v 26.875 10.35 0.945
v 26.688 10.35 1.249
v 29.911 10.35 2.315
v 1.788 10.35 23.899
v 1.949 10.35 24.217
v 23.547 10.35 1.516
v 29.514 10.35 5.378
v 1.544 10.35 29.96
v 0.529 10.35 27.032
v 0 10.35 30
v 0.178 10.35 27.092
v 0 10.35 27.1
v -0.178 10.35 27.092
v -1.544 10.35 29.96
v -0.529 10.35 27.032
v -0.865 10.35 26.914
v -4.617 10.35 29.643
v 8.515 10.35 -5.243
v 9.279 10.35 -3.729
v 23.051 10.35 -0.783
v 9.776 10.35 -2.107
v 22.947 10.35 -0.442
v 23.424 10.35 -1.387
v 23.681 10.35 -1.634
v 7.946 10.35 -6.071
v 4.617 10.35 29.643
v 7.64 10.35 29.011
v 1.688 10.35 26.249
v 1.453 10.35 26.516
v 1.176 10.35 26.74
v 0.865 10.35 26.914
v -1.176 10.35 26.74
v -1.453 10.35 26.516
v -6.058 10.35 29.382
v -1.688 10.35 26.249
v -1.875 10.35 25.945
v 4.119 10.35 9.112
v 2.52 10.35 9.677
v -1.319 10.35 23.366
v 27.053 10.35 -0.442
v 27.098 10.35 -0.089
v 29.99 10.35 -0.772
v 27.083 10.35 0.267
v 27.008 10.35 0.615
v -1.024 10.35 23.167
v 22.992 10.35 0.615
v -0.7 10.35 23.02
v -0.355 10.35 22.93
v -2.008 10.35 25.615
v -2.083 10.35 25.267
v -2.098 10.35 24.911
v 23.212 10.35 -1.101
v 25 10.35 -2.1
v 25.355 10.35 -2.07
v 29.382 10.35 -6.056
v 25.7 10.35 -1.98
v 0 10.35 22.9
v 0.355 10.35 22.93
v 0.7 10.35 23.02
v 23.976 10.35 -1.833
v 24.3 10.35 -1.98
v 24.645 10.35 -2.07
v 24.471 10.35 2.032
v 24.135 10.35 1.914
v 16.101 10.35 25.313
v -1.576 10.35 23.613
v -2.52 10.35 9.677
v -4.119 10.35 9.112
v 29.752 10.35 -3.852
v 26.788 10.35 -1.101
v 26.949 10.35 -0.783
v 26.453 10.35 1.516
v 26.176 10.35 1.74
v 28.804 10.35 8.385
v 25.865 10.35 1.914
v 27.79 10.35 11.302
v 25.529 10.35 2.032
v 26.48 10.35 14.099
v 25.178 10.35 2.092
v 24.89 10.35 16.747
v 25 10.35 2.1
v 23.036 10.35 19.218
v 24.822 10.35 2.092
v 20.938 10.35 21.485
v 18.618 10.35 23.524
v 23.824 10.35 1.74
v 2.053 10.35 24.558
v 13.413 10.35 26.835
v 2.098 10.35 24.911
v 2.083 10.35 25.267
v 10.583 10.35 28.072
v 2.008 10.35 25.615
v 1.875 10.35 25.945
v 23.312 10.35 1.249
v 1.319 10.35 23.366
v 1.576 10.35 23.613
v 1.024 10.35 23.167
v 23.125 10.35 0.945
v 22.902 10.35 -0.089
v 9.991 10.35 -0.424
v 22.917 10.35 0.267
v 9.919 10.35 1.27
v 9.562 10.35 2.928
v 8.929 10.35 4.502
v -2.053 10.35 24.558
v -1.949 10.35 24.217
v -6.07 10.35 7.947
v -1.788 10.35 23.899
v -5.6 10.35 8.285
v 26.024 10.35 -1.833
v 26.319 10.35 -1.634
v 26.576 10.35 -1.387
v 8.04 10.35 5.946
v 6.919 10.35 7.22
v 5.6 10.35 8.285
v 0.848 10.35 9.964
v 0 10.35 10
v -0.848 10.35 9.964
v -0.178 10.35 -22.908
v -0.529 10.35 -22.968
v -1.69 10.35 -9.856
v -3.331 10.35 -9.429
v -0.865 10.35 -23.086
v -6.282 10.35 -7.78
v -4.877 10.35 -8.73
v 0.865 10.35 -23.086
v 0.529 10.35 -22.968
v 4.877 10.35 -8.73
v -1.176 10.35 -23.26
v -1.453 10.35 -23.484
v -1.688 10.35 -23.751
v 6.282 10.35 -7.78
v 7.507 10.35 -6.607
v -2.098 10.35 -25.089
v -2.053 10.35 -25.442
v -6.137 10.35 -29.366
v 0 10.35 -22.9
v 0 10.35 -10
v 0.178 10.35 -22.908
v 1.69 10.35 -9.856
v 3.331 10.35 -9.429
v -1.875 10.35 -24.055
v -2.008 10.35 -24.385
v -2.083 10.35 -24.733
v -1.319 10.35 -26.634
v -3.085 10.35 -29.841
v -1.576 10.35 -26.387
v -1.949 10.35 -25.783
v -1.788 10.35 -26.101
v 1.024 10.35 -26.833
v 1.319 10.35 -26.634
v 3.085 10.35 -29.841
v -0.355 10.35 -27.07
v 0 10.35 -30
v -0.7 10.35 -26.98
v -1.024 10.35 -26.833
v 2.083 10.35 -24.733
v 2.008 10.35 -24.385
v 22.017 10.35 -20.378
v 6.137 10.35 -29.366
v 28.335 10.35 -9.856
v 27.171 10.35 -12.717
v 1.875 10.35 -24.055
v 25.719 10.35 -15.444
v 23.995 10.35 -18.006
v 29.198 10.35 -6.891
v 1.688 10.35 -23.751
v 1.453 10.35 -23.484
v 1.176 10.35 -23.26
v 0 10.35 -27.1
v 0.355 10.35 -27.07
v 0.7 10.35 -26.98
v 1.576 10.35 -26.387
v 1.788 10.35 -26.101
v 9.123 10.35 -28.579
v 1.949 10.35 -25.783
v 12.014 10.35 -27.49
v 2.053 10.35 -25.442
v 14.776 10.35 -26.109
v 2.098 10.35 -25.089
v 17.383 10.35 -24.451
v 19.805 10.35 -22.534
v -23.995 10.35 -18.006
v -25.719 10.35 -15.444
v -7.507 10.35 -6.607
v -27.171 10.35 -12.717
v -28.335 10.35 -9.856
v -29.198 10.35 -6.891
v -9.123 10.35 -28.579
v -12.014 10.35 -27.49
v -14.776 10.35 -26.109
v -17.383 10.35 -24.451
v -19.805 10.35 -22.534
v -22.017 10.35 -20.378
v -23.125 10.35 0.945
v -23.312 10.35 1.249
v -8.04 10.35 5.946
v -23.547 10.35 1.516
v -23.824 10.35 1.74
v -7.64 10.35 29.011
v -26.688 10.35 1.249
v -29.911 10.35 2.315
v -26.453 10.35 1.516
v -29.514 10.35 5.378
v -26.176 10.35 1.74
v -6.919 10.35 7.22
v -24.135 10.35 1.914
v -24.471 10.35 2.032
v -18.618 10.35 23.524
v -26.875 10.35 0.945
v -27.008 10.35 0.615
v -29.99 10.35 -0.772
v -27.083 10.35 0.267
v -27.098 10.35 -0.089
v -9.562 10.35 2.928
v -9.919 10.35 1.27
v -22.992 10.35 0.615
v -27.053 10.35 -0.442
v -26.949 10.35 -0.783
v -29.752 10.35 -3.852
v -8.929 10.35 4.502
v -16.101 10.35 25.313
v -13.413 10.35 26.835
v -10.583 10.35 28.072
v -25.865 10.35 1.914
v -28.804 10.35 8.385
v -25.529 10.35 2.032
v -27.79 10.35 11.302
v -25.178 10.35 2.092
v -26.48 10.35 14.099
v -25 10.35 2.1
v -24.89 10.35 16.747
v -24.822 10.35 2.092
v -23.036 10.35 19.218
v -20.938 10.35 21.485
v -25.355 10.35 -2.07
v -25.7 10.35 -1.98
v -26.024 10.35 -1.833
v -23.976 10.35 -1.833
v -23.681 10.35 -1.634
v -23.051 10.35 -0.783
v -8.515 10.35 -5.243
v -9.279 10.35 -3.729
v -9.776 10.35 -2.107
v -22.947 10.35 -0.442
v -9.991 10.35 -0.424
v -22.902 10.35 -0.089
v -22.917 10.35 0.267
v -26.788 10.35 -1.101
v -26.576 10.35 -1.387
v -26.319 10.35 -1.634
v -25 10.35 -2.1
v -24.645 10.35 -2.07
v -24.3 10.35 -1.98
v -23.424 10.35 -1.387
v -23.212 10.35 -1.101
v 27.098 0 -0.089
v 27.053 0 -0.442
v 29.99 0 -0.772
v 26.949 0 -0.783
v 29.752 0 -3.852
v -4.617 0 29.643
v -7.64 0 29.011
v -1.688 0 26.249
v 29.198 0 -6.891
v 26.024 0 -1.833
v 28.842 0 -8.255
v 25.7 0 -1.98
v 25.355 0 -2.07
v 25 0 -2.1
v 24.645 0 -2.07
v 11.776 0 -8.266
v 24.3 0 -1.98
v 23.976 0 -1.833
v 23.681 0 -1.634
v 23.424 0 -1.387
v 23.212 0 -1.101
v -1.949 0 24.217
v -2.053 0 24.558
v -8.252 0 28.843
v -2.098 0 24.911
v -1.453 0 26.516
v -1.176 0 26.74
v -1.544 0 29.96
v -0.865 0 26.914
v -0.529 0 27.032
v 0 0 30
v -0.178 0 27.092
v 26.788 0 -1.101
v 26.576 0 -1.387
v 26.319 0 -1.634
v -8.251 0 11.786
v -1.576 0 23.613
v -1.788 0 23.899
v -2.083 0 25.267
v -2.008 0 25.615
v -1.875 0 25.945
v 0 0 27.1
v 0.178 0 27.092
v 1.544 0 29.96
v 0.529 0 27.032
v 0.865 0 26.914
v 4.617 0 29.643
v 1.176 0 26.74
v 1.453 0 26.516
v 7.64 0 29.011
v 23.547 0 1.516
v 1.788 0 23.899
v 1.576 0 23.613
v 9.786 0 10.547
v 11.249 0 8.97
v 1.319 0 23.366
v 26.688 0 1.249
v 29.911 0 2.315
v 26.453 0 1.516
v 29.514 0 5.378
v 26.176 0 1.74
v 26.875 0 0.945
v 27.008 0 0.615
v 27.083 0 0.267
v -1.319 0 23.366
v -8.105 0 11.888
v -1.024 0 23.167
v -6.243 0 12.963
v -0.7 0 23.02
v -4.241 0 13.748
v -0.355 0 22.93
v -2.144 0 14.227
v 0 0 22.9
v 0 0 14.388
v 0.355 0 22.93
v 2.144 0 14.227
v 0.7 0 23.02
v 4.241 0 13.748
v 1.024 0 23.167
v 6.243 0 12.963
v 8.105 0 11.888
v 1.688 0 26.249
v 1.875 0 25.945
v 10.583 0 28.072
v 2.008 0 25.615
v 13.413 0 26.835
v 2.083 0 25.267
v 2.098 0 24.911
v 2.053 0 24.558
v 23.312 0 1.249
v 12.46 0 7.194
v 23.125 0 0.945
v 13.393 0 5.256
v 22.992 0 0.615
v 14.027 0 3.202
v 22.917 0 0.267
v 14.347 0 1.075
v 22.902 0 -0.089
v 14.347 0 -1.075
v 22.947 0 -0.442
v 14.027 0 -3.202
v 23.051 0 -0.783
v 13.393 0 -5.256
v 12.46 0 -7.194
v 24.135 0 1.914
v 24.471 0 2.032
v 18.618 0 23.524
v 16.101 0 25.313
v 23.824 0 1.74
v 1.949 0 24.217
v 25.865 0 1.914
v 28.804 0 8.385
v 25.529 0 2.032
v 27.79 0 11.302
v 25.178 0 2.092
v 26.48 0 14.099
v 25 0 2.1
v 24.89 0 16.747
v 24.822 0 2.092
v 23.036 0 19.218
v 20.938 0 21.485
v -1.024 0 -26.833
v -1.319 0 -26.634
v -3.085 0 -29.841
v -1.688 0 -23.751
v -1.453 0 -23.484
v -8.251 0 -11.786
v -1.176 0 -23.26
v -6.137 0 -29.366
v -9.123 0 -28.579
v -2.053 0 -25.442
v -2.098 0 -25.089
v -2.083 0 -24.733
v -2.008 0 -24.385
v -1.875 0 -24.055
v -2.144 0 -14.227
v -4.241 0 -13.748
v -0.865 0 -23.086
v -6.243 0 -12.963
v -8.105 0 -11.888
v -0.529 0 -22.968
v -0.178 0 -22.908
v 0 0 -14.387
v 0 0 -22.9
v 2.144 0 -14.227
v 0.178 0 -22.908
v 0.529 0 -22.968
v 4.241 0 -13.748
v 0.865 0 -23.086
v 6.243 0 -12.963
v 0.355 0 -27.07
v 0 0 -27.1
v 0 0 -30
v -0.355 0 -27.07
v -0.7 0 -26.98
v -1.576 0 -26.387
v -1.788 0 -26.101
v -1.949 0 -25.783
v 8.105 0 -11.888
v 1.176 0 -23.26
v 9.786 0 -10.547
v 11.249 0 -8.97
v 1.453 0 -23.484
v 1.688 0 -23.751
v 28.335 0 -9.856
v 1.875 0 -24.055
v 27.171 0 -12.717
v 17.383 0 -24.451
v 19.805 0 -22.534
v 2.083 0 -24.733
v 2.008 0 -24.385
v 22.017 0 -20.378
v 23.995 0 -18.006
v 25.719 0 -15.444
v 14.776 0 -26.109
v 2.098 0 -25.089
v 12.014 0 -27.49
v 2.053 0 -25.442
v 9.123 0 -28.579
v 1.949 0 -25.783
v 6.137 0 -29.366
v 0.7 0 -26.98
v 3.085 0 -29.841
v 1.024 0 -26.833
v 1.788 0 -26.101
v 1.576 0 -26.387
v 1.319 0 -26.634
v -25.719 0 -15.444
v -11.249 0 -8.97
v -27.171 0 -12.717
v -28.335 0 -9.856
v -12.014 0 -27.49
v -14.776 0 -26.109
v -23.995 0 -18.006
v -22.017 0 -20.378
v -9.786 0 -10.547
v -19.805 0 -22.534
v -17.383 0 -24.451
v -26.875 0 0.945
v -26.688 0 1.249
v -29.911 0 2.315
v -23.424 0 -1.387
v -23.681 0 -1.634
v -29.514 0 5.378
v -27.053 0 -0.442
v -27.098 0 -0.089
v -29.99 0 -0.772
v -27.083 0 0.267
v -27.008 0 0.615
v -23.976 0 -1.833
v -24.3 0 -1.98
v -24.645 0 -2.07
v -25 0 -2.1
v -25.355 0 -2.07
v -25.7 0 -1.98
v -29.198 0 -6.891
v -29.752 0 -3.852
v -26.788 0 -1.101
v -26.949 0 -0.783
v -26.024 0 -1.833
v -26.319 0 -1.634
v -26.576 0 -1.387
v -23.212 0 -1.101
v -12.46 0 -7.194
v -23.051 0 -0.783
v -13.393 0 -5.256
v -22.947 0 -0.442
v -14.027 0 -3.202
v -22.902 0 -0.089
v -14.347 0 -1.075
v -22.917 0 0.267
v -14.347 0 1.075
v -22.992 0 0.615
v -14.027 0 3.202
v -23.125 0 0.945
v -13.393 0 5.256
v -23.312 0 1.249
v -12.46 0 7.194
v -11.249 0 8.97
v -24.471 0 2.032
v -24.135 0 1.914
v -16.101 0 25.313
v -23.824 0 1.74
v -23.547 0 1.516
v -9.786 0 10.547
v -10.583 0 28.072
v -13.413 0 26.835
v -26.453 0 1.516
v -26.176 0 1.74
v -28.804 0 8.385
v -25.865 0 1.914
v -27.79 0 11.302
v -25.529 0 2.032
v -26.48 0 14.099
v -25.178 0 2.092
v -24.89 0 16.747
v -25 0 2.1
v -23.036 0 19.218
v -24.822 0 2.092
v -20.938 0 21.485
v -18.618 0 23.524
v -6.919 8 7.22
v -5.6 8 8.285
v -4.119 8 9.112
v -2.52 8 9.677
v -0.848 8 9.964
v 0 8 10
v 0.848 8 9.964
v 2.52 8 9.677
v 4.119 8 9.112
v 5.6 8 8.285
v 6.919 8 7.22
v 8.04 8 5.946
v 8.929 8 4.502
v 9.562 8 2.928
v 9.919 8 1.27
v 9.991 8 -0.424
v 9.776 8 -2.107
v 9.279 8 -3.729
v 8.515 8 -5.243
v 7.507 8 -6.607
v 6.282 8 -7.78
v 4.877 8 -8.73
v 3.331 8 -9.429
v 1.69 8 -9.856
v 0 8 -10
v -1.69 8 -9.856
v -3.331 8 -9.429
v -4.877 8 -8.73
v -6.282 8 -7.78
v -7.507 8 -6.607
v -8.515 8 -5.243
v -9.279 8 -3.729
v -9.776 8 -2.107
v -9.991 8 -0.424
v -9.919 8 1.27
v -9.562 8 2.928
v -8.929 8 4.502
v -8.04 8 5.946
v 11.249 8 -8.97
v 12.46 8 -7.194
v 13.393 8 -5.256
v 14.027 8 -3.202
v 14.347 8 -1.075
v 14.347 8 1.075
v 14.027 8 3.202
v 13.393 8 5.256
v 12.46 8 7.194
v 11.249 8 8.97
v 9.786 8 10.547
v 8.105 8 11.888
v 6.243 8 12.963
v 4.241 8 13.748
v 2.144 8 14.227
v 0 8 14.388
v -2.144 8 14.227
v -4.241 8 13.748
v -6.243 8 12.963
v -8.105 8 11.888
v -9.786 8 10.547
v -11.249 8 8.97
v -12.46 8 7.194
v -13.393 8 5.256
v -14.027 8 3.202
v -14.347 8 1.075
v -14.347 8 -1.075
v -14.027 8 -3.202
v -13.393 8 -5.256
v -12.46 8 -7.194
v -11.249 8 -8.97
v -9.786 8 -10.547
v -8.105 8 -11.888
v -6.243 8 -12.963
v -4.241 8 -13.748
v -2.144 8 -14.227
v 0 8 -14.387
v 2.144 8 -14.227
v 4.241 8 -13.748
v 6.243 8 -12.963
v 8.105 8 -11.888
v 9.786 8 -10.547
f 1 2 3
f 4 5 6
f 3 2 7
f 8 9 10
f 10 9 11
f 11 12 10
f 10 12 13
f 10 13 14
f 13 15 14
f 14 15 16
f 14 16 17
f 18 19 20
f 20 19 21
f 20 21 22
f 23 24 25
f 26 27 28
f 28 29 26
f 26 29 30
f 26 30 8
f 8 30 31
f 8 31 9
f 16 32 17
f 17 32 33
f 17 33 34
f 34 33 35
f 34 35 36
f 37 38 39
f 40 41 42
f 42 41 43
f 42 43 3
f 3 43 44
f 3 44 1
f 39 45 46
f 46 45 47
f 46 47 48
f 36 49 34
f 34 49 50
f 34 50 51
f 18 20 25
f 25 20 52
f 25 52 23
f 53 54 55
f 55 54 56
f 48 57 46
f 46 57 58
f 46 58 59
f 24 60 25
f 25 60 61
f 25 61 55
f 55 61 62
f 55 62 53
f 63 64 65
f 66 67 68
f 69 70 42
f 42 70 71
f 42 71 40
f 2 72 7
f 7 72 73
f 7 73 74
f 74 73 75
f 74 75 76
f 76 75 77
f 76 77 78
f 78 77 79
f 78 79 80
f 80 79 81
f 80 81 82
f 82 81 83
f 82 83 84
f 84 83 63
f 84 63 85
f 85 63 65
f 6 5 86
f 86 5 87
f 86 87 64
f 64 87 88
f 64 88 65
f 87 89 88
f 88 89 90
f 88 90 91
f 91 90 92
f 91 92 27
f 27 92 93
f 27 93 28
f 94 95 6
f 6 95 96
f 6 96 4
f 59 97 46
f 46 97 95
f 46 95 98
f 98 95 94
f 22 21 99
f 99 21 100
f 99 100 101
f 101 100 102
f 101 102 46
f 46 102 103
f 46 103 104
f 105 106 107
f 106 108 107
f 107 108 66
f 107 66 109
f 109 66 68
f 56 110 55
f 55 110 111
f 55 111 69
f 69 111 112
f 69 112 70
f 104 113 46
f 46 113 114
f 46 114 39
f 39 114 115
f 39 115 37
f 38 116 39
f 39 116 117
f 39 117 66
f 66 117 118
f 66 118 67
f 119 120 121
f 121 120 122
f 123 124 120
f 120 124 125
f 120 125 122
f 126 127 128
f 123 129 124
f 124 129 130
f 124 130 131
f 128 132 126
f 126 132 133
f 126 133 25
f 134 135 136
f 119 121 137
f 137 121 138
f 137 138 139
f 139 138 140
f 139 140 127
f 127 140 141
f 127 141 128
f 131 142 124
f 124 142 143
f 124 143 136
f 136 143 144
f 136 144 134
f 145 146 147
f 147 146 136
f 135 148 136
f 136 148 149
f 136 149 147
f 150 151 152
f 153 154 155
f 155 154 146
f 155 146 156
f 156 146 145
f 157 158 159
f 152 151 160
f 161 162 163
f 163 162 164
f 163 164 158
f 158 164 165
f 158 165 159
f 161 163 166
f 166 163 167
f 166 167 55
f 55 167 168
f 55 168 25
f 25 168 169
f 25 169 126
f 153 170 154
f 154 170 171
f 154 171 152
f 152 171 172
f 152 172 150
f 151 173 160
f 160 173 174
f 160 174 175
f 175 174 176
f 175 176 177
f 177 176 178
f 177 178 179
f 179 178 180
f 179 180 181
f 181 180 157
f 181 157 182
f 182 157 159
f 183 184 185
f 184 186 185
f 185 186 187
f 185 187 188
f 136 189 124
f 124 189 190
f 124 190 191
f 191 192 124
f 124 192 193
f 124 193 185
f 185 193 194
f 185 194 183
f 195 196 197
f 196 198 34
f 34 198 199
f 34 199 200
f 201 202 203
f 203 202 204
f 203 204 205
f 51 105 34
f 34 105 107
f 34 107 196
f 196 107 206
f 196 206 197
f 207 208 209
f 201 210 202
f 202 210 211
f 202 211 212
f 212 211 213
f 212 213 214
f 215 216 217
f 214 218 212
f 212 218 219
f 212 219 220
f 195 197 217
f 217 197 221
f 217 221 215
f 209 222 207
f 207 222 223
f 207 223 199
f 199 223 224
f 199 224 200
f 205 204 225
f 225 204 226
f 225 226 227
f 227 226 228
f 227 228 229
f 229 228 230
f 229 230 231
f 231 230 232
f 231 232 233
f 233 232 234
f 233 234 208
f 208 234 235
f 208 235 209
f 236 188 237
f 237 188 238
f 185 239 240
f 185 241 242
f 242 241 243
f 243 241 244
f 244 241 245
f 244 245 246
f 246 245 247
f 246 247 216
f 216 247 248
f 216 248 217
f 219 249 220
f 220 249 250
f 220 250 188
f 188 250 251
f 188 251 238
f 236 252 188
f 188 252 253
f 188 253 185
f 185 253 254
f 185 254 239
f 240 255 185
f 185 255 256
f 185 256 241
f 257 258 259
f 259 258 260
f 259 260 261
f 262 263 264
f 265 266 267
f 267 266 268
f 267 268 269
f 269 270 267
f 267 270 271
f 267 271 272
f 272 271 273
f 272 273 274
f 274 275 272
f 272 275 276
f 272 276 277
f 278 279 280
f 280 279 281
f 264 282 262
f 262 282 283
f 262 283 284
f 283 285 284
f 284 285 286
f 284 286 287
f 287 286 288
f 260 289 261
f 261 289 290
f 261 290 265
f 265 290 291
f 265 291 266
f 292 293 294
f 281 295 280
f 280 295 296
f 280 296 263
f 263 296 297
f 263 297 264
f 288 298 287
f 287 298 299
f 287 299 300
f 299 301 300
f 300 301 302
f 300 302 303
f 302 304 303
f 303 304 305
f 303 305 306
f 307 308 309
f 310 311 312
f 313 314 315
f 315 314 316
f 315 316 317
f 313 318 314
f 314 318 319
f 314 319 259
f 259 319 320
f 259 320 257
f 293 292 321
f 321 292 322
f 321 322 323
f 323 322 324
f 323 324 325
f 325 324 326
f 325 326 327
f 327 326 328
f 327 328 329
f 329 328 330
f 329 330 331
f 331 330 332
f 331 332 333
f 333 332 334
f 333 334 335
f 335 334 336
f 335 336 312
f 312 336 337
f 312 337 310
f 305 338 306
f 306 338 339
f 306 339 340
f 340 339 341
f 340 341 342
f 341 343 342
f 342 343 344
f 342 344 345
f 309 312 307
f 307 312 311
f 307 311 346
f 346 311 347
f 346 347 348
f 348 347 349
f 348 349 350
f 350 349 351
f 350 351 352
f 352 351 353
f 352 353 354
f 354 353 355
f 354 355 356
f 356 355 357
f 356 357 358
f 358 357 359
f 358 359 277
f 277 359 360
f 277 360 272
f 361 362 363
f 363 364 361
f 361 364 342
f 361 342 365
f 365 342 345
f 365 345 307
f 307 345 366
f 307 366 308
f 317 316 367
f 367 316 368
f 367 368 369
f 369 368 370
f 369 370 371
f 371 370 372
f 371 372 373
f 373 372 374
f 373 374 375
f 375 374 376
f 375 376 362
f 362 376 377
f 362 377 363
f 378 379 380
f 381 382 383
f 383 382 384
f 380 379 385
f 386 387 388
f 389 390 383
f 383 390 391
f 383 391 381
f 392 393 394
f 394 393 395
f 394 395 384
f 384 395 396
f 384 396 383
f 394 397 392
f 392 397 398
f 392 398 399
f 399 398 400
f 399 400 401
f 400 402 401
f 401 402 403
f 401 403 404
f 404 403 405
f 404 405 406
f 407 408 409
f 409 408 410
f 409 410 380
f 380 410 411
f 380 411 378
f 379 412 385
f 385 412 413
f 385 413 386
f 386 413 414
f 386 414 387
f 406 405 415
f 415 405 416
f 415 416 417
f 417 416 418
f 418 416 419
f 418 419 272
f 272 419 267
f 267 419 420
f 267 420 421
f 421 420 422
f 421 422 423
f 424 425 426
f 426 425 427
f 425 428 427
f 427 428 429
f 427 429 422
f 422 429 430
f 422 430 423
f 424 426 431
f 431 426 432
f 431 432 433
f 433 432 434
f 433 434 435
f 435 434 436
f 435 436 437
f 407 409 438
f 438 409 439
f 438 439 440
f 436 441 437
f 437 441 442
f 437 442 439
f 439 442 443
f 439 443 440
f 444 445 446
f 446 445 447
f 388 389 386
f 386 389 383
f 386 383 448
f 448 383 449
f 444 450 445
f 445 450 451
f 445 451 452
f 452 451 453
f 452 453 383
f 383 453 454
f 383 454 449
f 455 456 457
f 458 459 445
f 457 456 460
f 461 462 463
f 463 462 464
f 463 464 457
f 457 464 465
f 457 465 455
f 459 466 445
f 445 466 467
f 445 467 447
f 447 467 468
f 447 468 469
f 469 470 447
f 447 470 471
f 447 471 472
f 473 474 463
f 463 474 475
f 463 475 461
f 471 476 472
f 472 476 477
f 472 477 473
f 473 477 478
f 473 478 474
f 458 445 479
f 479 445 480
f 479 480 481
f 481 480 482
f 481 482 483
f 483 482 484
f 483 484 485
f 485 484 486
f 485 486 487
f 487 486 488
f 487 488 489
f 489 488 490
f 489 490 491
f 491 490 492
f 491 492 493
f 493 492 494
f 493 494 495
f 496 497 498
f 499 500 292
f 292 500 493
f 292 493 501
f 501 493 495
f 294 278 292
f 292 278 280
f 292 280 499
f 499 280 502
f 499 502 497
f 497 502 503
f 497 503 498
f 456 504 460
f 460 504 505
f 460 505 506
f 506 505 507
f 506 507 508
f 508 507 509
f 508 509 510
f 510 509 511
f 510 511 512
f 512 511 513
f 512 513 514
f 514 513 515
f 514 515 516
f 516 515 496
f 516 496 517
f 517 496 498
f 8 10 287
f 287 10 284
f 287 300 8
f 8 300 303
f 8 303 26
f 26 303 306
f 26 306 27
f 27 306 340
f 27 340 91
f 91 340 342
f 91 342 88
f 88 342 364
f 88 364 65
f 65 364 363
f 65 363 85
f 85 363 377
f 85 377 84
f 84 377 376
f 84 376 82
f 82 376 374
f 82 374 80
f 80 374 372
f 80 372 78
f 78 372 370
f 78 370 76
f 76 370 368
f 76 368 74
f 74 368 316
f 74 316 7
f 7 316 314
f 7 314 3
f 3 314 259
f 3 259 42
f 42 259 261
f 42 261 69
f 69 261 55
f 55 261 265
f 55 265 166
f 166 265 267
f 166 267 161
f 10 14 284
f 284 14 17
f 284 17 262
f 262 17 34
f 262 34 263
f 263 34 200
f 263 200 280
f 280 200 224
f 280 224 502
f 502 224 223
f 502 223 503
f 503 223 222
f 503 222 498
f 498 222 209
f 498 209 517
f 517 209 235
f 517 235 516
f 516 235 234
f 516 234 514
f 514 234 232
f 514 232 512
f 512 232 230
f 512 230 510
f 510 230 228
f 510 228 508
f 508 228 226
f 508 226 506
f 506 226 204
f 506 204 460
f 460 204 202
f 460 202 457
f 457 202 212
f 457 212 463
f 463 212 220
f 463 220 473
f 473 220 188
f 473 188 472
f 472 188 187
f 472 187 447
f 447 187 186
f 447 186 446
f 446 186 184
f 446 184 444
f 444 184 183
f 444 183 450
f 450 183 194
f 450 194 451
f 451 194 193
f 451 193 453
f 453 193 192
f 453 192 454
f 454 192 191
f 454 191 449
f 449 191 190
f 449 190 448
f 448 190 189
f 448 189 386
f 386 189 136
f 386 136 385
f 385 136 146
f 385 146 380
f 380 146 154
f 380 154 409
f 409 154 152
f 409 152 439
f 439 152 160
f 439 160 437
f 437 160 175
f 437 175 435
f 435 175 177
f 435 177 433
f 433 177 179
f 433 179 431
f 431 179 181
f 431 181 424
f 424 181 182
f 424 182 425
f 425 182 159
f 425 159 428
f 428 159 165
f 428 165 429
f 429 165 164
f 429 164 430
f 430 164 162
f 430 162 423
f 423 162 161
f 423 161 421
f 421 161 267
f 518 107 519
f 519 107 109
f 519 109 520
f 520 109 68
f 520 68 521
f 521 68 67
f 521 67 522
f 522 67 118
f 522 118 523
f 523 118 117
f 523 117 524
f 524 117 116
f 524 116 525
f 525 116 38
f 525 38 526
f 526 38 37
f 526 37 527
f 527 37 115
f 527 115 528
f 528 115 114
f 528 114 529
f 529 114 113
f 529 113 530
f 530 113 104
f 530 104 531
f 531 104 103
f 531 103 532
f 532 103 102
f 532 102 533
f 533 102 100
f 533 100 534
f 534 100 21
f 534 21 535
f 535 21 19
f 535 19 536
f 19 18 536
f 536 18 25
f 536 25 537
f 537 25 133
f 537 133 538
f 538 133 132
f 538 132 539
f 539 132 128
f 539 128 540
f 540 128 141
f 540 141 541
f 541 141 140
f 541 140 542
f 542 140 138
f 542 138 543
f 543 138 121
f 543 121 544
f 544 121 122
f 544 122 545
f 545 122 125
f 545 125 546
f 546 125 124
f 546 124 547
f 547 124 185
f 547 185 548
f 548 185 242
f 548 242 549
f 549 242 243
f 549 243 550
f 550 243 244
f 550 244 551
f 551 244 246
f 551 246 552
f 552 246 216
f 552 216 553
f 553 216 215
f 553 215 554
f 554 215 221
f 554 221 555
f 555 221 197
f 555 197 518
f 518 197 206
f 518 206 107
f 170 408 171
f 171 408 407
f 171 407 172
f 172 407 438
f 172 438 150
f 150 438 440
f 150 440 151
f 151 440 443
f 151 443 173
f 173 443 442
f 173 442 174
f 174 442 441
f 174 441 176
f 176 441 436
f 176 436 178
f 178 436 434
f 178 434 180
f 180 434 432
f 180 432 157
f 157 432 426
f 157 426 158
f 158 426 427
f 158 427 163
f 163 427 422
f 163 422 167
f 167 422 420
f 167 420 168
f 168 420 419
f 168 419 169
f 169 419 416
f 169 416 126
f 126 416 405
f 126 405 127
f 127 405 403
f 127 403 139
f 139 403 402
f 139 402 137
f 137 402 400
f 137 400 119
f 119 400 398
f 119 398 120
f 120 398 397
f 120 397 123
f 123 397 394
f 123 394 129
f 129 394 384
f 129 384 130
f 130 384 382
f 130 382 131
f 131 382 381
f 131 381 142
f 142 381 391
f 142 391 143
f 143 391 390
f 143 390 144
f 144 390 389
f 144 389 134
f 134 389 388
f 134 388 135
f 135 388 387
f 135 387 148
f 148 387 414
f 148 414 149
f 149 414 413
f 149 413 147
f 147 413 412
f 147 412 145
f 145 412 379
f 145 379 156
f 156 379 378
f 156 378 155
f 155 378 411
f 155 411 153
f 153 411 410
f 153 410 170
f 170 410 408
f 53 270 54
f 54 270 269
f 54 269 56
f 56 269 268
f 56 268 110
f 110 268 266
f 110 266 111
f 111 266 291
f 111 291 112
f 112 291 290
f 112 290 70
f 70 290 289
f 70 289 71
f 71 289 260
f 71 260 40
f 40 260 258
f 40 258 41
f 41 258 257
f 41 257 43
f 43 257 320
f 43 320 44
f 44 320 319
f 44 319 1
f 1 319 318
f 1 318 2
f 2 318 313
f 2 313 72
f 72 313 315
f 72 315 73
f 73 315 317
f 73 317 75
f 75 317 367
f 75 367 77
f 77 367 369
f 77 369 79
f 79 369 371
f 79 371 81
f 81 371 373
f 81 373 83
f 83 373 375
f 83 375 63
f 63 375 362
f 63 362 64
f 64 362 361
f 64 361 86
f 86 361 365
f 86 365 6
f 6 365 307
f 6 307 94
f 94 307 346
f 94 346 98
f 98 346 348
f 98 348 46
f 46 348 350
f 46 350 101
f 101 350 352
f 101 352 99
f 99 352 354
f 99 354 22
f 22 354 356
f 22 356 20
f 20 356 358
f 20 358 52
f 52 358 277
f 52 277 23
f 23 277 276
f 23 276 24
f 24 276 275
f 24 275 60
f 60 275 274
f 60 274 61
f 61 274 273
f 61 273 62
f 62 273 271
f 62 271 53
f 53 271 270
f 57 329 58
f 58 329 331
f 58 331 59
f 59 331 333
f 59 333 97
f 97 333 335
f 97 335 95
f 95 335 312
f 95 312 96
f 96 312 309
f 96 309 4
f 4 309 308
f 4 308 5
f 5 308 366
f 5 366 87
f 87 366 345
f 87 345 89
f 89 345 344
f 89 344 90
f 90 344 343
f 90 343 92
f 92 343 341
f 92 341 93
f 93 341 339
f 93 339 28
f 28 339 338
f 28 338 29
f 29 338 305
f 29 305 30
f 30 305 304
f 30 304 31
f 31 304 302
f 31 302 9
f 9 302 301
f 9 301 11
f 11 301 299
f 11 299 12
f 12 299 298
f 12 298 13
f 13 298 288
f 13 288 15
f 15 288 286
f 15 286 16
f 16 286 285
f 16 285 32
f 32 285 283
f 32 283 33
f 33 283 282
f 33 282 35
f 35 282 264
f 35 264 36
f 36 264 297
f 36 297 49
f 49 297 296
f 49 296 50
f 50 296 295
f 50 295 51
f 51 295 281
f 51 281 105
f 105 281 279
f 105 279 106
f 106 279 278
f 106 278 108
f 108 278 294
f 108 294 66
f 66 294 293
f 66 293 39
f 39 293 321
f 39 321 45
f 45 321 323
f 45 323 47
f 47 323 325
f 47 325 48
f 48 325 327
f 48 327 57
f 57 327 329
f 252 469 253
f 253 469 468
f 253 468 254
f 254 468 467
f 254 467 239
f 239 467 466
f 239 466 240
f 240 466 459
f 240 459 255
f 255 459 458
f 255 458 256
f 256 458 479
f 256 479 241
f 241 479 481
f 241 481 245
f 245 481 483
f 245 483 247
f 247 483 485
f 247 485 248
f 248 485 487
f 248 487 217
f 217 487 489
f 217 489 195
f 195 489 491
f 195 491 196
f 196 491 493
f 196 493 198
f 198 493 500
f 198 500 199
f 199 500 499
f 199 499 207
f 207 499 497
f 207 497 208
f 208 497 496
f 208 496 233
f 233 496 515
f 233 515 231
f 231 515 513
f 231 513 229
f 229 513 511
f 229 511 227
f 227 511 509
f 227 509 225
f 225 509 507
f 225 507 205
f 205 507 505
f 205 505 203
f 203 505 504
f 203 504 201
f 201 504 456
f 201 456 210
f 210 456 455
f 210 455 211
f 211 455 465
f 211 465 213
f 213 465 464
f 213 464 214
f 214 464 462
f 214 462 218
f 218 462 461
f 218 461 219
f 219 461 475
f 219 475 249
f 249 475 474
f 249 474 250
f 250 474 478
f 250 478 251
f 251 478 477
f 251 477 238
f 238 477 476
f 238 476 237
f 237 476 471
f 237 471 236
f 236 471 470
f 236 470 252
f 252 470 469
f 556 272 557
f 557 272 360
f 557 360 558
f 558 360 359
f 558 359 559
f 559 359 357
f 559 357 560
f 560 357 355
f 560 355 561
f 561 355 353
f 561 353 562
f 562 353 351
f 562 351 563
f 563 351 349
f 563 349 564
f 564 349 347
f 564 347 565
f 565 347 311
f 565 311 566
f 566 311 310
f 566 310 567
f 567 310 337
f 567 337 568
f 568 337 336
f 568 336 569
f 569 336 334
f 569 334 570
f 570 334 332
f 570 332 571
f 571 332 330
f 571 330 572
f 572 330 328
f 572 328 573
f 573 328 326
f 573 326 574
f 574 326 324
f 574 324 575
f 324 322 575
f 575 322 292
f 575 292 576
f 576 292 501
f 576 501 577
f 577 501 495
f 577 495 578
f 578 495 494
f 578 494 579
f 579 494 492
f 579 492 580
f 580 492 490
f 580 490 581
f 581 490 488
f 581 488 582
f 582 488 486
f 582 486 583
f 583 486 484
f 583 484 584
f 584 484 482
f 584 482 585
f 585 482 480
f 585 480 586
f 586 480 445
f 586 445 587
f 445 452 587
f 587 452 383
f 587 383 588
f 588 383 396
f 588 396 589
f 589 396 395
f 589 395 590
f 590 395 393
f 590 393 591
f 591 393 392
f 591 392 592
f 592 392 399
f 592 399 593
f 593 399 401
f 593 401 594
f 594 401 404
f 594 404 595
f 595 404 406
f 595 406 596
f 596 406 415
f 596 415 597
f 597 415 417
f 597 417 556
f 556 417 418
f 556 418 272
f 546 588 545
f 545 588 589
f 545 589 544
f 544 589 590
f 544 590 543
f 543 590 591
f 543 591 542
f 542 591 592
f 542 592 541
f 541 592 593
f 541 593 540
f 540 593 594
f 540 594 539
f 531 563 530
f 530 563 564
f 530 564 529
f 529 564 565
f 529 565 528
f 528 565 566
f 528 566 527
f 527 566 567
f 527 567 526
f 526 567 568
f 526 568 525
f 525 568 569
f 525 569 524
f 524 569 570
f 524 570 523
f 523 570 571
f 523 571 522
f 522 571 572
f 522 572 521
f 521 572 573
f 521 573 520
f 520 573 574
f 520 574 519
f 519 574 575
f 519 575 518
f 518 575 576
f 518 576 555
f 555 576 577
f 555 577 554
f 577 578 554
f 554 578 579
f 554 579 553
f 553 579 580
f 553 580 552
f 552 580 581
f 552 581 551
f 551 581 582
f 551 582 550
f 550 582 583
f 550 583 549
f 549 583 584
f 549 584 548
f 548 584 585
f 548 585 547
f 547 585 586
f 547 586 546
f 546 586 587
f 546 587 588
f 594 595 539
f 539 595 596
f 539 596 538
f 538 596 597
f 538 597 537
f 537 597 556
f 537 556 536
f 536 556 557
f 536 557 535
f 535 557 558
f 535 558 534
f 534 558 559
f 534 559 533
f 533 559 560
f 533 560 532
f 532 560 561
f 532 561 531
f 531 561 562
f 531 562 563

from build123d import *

# Parameters (mm, degrees)
SKETCH1_R           = 30
SKETCH1_R_2         = 10
SKETCH1_R_3         = 2.1
BOSS_EXTRUDE1_DEPTH = 10.35
SKETCH2_R           = 14.3875
CUT_EXTRUDE2_DEPTH  = 8


with BuildPart() as part:
    # Sketch1 → Boss-Extrude1 (new body)
    with BuildSketch(Plane(origin=(0, 0, 0), x_dir=(1, 0, 0), z_dir=(0, 1, 0))):
        with Locations(Location((0, 0, 0), (0, 0, 270))):
            Circle(SKETCH1_R)
        with Locations(Location((0, 0, 0), (0, 0, 270))):
            Circle(SKETCH1_R_2, mode=Mode.SUBTRACT)
        with Locations(Location((0, 25, 0), (0, 0, 270))):
            Circle(SKETCH1_R_3, mode=Mode.SUBTRACT)
        with Locations(Location((25, 0, 0), (0, 0, 270))):
            Circle(SKETCH1_R_3, mode=Mode.SUBTRACT)
        with Locations(Location((0, -25, 0), (0, 0, 270))):
            Circle(SKETCH1_R_3, mode=Mode.SUBTRACT)
        with Locations(Location((-25, 0, 0), (0, 0, 270))):
            Circle(SKETCH1_R_3, mode=Mode.SUBTRACT)
    extrude(amount=BOSS_EXTRUDE1_DEPTH)

    # Sketch2 → Cut-Extrude2 (cut)
    with BuildSketch(Plane(origin=(0, 0, 0), x_dir=(1, 0, 0), z_dir=(0, 1, 0))):
        with Locations(Location((0, 0, 0), (0, 0, 270))):
            Circle(SKETCH2_R)
    extrude(amount=CUT_EXTRUDE2_DEPTH, mode=Mode.SUBTRACT)


solid = part.part
